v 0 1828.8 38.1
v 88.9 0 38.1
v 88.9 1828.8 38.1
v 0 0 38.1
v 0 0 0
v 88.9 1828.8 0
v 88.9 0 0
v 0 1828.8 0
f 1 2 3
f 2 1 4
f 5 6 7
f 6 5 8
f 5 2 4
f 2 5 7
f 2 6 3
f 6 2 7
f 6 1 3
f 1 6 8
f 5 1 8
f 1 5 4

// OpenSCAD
/* dimensions in mm */
inch = 25.4;
lumberinch = inch*0.75;
lumbertwoinch = inch*1.5;
lumberfourinch = inch*3.5;
lumbersixinch = inch*5.5;

feet = inch*12;

module onebysix(); {
    color("Peru")
    cube([lumberfourinch,feet*6,lumbertwoinch]);
}
